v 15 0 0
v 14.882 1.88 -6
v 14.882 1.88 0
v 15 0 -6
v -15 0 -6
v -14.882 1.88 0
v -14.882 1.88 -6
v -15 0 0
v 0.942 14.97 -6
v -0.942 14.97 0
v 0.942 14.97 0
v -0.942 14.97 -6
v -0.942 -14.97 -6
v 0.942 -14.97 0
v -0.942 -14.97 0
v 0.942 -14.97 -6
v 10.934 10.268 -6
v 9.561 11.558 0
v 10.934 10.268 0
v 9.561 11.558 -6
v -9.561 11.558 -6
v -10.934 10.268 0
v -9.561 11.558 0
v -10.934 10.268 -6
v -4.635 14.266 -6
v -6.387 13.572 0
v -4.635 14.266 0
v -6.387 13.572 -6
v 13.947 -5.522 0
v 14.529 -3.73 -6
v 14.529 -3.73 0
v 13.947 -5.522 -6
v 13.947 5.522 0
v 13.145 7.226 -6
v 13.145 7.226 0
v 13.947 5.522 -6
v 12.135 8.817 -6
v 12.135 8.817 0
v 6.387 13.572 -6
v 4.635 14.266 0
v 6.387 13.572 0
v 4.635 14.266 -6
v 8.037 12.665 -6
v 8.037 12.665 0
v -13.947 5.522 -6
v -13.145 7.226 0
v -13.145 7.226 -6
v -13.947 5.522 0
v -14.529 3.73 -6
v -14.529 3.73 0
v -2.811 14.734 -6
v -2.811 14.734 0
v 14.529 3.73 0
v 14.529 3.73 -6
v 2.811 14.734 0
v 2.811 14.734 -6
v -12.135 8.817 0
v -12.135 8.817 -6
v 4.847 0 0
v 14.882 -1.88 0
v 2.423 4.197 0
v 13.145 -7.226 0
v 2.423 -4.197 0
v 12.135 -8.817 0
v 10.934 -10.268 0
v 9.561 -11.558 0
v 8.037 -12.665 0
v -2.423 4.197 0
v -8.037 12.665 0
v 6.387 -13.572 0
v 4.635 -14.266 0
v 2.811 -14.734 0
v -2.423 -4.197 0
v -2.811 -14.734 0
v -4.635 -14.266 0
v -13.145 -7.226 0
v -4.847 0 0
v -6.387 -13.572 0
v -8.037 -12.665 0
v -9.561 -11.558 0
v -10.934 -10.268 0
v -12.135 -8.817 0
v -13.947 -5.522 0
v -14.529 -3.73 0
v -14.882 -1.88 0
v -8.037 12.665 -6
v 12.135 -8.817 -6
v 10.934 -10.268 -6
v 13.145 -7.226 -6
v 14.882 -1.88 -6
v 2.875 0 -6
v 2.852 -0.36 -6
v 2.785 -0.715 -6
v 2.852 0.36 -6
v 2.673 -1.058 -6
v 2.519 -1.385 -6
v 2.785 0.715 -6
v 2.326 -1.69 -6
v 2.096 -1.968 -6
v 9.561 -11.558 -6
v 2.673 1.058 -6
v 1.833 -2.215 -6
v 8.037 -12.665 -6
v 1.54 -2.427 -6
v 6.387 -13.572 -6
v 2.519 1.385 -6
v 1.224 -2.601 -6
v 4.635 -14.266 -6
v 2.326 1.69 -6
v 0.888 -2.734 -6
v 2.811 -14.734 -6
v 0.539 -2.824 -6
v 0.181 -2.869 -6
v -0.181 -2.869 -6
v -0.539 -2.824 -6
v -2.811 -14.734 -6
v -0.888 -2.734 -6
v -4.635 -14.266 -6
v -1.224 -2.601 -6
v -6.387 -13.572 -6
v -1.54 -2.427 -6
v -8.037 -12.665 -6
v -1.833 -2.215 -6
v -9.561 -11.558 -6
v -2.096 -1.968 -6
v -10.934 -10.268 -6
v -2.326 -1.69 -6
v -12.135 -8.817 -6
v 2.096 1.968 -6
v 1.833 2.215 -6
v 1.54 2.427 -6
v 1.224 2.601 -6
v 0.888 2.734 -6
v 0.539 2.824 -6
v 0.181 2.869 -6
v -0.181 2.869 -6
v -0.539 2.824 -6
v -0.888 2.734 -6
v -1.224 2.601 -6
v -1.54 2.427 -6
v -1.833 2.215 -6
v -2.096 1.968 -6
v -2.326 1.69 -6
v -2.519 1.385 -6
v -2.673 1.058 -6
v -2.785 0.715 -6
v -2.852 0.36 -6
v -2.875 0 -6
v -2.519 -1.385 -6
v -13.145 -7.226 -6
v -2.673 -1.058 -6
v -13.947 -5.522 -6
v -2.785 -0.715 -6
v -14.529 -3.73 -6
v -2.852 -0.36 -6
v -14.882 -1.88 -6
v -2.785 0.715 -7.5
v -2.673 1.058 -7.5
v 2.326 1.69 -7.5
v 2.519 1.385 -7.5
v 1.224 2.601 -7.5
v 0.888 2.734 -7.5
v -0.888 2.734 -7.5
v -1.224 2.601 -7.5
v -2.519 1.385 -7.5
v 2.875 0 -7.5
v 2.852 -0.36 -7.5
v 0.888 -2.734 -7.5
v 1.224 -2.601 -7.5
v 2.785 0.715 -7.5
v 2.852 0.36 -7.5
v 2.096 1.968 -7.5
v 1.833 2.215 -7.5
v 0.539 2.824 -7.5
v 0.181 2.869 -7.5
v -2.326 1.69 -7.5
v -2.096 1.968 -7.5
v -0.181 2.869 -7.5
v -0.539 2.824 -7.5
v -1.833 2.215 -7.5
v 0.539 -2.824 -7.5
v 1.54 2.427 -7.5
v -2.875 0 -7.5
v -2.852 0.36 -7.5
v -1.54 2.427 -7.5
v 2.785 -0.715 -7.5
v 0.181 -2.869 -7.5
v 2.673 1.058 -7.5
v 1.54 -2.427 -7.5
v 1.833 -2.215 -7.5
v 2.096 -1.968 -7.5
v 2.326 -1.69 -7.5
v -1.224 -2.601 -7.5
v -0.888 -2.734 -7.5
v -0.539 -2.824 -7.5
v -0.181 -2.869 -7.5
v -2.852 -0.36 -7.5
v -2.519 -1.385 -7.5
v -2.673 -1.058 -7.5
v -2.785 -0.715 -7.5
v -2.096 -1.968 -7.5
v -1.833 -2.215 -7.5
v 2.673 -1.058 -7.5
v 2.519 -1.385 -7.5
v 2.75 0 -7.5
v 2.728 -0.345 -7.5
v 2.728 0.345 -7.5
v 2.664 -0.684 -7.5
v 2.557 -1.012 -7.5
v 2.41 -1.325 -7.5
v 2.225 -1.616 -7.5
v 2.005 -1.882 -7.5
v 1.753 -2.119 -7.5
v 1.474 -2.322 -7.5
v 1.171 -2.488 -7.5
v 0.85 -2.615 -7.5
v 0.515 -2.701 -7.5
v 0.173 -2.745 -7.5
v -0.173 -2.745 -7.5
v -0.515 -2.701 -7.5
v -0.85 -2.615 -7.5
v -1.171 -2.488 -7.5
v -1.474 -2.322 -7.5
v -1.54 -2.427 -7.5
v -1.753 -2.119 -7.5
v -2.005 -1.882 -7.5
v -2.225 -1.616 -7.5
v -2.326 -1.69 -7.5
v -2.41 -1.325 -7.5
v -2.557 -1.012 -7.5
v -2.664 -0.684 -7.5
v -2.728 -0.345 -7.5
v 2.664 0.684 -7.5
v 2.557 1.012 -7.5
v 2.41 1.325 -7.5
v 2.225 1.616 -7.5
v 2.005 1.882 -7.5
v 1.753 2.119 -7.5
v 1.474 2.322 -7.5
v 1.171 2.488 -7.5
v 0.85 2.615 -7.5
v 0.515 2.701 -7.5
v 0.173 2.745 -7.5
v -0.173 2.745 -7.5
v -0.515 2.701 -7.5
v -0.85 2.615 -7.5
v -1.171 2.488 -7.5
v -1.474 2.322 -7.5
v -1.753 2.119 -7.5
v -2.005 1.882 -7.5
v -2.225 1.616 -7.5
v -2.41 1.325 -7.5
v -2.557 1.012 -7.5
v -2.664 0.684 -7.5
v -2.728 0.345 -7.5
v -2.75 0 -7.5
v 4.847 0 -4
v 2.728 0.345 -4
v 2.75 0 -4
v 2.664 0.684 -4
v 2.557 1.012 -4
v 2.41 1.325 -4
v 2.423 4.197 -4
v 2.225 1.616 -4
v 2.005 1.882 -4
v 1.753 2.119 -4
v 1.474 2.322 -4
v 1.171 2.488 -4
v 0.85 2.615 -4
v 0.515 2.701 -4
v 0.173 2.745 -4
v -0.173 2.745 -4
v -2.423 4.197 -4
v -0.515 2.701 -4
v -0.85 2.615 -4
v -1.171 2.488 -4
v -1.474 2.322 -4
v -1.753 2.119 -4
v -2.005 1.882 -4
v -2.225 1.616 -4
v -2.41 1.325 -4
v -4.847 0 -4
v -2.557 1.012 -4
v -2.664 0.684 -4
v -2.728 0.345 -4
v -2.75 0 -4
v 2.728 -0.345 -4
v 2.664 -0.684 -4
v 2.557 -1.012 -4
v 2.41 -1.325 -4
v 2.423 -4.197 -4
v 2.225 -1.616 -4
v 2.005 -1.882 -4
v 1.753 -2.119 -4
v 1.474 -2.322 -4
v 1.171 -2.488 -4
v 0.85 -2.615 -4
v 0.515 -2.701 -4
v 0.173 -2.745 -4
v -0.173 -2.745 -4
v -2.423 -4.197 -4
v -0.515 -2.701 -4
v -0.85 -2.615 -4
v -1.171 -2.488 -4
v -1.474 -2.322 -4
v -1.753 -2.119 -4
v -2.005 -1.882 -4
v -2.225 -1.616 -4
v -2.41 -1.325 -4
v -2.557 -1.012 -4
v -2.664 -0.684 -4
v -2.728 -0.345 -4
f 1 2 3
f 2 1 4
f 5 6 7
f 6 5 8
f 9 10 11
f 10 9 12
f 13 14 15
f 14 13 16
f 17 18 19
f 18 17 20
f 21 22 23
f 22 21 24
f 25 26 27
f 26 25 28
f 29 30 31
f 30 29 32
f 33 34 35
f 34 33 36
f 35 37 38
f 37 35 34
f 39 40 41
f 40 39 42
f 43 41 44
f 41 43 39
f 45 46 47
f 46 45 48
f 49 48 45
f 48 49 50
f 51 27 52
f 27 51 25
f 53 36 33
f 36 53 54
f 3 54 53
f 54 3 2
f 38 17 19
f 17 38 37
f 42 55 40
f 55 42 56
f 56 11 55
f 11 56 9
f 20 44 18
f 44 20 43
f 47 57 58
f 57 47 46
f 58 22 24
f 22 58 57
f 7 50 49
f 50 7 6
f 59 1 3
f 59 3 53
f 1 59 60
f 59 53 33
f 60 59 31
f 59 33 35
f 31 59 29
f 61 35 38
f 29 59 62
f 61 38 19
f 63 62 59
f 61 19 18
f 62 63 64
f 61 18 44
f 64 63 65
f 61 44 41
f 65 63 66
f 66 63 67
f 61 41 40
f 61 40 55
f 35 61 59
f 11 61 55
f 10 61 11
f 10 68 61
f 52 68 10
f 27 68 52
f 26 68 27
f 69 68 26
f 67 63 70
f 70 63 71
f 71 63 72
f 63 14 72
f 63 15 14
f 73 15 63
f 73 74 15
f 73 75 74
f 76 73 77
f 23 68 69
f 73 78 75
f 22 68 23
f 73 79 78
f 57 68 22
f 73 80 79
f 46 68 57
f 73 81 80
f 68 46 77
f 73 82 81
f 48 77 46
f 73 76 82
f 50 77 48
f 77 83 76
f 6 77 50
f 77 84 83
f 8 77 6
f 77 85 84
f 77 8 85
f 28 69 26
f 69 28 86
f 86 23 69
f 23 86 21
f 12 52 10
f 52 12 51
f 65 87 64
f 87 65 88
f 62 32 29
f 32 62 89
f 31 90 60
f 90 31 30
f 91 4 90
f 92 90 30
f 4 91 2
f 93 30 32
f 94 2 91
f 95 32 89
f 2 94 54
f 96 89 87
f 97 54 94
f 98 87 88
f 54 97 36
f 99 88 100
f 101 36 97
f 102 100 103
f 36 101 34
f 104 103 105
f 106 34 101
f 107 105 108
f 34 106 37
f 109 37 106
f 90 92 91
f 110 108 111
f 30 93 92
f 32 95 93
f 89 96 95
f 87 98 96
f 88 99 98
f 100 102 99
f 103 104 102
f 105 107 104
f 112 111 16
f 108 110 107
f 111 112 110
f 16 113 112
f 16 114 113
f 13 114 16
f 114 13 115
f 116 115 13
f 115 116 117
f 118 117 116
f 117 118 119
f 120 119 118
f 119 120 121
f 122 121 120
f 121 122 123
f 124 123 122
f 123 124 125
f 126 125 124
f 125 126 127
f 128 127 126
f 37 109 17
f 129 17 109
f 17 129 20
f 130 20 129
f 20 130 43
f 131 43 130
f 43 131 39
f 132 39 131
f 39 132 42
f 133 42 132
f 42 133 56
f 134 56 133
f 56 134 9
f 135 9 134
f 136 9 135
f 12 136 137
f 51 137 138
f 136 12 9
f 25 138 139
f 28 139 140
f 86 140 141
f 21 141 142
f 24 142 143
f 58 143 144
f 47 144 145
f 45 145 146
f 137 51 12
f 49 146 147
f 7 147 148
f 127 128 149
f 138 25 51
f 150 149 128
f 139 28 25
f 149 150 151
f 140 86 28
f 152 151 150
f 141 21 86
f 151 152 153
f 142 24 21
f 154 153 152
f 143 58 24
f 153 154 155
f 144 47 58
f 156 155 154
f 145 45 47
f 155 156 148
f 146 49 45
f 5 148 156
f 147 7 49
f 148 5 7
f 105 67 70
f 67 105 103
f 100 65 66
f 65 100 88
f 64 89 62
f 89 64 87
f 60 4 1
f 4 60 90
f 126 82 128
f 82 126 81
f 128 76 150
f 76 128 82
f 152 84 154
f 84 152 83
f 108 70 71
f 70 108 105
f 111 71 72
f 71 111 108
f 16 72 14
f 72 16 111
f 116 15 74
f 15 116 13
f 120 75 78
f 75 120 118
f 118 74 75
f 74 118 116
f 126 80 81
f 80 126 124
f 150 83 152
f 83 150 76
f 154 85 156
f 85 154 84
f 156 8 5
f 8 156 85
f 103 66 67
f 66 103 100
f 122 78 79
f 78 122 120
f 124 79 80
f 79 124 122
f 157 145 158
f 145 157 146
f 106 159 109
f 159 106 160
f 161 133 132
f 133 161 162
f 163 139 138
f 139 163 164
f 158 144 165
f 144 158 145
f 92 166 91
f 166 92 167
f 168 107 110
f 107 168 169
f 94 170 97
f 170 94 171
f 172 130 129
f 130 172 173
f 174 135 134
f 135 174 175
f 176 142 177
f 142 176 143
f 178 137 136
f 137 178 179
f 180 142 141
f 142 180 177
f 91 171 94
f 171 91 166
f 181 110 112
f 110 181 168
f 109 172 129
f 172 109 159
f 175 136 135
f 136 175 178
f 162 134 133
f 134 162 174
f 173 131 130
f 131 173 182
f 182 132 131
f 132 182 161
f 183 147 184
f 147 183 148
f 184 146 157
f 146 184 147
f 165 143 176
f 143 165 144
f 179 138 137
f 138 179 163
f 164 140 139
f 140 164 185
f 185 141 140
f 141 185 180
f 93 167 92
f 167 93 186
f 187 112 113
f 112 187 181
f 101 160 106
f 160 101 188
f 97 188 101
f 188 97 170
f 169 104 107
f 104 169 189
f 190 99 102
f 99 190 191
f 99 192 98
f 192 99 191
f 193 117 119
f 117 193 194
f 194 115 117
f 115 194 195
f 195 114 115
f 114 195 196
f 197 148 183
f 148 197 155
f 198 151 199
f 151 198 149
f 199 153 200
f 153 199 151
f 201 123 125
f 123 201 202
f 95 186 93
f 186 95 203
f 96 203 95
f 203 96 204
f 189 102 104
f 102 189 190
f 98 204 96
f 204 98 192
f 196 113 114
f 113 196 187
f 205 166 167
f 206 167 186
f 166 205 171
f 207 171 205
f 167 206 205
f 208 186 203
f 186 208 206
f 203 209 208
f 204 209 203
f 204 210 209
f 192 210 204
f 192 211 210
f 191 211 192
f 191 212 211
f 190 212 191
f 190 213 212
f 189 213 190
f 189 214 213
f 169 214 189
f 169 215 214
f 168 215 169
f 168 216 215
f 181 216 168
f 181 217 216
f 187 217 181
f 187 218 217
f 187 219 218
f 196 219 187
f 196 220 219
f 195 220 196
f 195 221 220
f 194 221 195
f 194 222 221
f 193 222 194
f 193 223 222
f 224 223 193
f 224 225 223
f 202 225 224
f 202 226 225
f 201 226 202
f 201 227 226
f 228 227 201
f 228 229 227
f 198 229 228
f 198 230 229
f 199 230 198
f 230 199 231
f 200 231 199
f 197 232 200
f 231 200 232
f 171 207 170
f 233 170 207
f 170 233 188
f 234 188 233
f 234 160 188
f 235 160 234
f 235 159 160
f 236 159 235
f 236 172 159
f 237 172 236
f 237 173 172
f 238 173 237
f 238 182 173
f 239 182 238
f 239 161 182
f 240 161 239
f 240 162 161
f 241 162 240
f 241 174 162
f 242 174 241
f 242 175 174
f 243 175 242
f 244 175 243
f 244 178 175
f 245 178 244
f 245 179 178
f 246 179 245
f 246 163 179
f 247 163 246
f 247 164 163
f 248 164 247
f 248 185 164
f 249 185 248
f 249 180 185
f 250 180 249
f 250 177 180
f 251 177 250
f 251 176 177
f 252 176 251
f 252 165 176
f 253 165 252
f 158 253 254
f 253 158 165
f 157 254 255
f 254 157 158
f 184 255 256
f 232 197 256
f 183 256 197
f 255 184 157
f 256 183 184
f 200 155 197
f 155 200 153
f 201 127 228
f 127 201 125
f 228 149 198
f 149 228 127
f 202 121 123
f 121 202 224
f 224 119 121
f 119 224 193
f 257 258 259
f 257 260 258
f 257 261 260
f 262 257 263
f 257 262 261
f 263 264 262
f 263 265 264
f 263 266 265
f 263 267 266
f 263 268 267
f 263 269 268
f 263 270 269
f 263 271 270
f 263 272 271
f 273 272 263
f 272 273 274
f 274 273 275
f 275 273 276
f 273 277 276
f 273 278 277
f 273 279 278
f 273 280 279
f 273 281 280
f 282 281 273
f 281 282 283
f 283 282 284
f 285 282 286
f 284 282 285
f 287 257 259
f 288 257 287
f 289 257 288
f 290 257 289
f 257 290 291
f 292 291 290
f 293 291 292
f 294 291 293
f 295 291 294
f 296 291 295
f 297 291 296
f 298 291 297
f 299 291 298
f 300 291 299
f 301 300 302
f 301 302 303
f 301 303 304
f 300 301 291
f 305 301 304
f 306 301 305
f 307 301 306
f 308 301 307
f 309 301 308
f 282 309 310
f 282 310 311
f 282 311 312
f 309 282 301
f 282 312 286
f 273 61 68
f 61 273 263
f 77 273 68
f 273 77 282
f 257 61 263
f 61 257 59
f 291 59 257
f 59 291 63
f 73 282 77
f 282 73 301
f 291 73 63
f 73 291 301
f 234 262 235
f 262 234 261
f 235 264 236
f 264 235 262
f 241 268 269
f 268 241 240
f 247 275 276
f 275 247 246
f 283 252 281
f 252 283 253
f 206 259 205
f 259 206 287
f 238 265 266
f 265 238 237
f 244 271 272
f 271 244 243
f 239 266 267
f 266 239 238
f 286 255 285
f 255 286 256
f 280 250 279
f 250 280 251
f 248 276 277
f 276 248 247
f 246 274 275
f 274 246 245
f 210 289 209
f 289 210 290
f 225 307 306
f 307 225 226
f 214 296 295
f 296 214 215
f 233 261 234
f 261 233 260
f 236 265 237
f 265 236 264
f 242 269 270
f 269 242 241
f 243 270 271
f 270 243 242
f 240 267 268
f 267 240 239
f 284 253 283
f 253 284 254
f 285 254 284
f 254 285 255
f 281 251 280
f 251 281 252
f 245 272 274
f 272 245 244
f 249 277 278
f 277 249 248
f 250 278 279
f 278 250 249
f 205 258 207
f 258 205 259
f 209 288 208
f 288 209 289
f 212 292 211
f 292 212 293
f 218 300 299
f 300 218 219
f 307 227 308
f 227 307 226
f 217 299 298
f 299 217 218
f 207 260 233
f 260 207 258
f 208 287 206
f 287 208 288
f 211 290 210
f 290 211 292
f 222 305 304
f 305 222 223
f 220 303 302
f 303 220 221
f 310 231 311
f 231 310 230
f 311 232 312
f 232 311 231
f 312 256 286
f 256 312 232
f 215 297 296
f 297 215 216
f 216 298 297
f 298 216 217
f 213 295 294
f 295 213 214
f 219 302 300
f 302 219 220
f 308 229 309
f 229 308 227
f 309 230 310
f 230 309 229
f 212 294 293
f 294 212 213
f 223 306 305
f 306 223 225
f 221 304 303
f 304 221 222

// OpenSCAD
$fn = 50;

difference() {
	union() {
		translate(v = [0, 0, -6.0]) {
			cylinder(h = 6.0, r = 15.0);
		}
		#translate(v = [0, 0, -7.5]) {
			cylinder(h = 7.5, r = 2.875);
		}
	}
	union() {
		translate(v = [0, 0, 0]) {
			rotate(a = [0, 0, 0]) {
				difference() {
					union() {
						translate(v = [0, 0, -4]) {
							linear_extrude(height = 4) {
								polygon(points = [[4.8468, 0.0], [2.4234000000000004, 4.197451927062417], [-2.423399999999999, 4.197451927062417], [-4.8468, 5.935618106107392e-16], [-2.423400000000002, -4.197451927062416], [2.423399999999997, -4.197451927062419]]);
							}
						}
					}
					union();
				}
			}
		}
		#translate(v = [0, 0, -100.0]) {
			cylinder(h = 200, r = 2.75);
		}
	}
}
